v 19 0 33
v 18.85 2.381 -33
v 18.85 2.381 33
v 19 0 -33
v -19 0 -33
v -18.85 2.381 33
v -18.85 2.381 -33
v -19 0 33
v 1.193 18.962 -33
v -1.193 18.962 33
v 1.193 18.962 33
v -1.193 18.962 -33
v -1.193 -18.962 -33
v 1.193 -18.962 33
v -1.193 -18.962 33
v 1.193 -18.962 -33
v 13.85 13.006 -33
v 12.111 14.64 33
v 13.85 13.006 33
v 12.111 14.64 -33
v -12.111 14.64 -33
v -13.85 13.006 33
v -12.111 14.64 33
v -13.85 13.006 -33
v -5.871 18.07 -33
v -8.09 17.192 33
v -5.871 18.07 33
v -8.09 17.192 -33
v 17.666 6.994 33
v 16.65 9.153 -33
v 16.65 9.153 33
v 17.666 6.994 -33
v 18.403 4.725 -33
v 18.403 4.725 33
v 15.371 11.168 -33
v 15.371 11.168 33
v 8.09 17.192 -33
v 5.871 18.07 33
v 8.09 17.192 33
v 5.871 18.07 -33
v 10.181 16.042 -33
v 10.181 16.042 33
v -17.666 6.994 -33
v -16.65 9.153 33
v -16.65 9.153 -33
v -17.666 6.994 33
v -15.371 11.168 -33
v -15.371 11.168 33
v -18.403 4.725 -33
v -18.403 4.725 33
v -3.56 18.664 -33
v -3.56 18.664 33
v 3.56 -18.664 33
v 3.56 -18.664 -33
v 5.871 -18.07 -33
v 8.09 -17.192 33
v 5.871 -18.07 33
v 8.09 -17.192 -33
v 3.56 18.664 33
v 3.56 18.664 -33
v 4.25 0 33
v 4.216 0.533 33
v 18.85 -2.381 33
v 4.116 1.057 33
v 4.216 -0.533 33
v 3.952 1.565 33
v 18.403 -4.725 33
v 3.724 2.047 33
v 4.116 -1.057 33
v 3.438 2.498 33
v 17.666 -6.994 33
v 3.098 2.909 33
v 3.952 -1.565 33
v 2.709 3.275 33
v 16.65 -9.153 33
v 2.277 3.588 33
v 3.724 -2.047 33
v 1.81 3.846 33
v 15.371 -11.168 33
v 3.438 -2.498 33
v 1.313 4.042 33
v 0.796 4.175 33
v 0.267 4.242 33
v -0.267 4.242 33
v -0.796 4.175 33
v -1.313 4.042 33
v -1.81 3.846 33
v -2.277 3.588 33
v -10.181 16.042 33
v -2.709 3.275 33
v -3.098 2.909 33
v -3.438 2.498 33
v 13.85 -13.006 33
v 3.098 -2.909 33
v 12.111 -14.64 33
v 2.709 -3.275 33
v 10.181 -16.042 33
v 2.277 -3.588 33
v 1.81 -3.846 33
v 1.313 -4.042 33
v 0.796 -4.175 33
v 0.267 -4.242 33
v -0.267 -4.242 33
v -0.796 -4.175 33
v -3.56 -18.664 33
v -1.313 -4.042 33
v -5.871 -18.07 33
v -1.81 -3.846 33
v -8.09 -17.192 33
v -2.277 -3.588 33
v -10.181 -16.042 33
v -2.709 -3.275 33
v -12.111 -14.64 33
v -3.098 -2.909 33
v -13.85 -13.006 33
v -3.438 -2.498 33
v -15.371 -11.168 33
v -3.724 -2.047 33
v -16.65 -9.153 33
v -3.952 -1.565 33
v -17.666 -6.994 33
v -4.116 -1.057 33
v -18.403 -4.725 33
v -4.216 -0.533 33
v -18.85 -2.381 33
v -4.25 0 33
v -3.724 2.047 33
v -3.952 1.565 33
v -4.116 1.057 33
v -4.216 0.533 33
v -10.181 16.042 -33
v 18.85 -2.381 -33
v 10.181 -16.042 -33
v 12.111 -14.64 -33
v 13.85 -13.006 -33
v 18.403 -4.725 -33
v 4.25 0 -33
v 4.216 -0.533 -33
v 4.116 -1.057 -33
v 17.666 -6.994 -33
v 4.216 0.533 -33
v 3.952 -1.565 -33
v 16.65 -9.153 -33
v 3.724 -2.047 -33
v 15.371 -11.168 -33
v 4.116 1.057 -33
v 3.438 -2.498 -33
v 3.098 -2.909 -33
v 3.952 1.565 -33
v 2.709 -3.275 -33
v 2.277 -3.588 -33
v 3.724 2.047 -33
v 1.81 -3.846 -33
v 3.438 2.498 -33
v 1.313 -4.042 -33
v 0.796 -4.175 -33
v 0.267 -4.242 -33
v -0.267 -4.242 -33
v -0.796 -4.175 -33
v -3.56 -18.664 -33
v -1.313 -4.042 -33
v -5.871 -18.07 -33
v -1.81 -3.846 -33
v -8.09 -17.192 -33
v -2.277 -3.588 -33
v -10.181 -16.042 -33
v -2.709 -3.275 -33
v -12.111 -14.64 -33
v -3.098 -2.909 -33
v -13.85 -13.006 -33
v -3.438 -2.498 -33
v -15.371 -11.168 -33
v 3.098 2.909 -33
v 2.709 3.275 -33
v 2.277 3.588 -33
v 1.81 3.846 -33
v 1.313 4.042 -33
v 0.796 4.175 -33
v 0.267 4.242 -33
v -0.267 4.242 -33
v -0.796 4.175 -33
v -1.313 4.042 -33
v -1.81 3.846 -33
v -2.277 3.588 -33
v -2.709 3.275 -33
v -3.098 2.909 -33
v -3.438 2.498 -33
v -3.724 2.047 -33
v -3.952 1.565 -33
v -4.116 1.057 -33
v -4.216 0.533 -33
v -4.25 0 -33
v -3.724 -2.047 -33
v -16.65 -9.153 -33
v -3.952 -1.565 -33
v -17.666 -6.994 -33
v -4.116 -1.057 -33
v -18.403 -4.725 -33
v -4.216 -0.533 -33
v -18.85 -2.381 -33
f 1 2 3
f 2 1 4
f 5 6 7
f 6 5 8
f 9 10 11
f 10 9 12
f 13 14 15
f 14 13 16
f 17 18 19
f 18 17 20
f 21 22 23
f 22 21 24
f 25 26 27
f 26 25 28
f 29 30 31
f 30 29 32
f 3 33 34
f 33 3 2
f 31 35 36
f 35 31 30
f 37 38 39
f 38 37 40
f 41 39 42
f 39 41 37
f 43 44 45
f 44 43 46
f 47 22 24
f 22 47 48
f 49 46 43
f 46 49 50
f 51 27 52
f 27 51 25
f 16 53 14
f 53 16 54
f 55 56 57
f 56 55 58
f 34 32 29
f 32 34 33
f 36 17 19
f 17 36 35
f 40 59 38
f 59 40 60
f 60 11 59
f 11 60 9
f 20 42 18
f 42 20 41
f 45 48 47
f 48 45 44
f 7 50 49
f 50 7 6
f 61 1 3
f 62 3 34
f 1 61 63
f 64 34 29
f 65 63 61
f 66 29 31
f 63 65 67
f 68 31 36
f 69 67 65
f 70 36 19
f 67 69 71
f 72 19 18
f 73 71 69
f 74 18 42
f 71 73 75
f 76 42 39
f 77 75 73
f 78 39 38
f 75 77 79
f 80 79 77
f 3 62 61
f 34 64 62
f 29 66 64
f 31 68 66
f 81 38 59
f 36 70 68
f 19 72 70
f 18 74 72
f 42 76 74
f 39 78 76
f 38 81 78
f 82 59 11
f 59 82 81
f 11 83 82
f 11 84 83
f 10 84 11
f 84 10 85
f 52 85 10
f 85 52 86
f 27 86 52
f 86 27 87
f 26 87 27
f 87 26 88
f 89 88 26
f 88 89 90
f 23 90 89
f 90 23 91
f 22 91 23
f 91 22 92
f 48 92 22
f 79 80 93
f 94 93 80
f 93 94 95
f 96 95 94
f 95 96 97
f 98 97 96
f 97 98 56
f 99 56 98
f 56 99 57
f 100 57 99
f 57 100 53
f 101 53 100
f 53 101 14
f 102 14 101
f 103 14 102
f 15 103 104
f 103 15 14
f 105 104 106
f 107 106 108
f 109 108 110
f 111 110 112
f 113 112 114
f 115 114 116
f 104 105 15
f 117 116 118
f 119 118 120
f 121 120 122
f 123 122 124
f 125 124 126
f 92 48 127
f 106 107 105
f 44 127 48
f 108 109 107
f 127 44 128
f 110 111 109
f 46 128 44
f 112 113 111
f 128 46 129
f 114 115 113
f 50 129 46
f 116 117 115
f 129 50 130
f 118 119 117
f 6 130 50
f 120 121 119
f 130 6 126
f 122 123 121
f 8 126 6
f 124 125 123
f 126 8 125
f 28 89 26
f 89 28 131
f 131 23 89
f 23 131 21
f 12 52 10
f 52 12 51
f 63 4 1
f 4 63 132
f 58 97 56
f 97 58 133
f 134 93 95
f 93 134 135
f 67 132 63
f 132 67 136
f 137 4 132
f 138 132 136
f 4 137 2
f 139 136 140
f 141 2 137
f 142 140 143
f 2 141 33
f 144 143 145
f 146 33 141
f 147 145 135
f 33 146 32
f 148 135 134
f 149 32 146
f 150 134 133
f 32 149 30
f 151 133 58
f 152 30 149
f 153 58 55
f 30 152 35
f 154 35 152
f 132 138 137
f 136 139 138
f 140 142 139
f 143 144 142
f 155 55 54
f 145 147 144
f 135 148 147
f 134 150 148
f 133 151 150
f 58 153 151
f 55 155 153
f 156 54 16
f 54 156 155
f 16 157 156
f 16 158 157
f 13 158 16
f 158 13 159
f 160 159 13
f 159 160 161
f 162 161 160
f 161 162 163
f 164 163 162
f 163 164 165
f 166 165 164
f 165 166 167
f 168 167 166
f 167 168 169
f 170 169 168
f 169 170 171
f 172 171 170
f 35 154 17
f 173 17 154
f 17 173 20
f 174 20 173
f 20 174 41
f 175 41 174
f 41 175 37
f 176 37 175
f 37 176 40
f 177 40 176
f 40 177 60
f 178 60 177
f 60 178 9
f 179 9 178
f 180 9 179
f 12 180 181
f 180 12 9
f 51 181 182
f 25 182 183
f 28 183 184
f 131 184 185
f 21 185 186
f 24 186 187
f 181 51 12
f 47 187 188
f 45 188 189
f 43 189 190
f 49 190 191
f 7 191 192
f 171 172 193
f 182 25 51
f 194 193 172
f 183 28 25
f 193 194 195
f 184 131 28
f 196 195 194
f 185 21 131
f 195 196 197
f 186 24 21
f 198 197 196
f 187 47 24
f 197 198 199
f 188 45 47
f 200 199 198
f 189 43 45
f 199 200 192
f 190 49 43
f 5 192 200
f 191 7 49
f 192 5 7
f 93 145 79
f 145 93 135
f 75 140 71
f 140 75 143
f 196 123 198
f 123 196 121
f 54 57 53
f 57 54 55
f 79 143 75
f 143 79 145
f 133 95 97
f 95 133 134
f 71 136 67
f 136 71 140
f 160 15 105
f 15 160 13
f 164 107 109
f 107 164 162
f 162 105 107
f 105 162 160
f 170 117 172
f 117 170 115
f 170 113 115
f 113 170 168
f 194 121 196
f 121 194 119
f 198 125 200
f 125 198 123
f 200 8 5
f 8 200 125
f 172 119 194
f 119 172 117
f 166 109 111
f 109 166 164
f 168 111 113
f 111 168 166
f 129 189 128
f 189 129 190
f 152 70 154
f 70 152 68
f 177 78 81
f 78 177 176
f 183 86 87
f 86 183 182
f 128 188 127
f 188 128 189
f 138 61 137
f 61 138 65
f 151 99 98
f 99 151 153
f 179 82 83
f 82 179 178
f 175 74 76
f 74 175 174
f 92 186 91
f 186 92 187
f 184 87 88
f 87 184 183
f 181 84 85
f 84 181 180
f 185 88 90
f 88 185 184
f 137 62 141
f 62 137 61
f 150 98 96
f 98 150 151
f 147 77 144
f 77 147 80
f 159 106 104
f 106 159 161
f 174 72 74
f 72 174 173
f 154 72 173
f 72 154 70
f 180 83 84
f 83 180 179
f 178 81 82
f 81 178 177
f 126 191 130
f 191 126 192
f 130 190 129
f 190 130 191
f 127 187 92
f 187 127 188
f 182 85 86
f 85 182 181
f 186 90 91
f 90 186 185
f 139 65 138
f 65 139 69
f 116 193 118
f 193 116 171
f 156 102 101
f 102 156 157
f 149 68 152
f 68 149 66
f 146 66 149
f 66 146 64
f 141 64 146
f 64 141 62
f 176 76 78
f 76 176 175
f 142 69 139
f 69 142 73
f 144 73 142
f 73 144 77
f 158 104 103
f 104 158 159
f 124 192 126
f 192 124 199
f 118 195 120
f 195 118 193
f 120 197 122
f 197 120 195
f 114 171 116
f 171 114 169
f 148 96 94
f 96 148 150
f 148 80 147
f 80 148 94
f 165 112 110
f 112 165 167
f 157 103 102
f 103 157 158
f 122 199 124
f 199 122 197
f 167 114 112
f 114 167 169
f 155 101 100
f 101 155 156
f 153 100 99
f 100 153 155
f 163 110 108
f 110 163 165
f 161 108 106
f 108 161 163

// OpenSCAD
$fn = 50;


difference() {
	union() {
		translate(v = [0, 0, -33.0000000000]) {
			cylinder(h = 66, r = 19.0000000000);
		}
	}
	union() {
		translate(v = [0, 0, -100.0000000000]) {
			cylinder(h = 200, r = 4.2500000000);
		}
	}
}
